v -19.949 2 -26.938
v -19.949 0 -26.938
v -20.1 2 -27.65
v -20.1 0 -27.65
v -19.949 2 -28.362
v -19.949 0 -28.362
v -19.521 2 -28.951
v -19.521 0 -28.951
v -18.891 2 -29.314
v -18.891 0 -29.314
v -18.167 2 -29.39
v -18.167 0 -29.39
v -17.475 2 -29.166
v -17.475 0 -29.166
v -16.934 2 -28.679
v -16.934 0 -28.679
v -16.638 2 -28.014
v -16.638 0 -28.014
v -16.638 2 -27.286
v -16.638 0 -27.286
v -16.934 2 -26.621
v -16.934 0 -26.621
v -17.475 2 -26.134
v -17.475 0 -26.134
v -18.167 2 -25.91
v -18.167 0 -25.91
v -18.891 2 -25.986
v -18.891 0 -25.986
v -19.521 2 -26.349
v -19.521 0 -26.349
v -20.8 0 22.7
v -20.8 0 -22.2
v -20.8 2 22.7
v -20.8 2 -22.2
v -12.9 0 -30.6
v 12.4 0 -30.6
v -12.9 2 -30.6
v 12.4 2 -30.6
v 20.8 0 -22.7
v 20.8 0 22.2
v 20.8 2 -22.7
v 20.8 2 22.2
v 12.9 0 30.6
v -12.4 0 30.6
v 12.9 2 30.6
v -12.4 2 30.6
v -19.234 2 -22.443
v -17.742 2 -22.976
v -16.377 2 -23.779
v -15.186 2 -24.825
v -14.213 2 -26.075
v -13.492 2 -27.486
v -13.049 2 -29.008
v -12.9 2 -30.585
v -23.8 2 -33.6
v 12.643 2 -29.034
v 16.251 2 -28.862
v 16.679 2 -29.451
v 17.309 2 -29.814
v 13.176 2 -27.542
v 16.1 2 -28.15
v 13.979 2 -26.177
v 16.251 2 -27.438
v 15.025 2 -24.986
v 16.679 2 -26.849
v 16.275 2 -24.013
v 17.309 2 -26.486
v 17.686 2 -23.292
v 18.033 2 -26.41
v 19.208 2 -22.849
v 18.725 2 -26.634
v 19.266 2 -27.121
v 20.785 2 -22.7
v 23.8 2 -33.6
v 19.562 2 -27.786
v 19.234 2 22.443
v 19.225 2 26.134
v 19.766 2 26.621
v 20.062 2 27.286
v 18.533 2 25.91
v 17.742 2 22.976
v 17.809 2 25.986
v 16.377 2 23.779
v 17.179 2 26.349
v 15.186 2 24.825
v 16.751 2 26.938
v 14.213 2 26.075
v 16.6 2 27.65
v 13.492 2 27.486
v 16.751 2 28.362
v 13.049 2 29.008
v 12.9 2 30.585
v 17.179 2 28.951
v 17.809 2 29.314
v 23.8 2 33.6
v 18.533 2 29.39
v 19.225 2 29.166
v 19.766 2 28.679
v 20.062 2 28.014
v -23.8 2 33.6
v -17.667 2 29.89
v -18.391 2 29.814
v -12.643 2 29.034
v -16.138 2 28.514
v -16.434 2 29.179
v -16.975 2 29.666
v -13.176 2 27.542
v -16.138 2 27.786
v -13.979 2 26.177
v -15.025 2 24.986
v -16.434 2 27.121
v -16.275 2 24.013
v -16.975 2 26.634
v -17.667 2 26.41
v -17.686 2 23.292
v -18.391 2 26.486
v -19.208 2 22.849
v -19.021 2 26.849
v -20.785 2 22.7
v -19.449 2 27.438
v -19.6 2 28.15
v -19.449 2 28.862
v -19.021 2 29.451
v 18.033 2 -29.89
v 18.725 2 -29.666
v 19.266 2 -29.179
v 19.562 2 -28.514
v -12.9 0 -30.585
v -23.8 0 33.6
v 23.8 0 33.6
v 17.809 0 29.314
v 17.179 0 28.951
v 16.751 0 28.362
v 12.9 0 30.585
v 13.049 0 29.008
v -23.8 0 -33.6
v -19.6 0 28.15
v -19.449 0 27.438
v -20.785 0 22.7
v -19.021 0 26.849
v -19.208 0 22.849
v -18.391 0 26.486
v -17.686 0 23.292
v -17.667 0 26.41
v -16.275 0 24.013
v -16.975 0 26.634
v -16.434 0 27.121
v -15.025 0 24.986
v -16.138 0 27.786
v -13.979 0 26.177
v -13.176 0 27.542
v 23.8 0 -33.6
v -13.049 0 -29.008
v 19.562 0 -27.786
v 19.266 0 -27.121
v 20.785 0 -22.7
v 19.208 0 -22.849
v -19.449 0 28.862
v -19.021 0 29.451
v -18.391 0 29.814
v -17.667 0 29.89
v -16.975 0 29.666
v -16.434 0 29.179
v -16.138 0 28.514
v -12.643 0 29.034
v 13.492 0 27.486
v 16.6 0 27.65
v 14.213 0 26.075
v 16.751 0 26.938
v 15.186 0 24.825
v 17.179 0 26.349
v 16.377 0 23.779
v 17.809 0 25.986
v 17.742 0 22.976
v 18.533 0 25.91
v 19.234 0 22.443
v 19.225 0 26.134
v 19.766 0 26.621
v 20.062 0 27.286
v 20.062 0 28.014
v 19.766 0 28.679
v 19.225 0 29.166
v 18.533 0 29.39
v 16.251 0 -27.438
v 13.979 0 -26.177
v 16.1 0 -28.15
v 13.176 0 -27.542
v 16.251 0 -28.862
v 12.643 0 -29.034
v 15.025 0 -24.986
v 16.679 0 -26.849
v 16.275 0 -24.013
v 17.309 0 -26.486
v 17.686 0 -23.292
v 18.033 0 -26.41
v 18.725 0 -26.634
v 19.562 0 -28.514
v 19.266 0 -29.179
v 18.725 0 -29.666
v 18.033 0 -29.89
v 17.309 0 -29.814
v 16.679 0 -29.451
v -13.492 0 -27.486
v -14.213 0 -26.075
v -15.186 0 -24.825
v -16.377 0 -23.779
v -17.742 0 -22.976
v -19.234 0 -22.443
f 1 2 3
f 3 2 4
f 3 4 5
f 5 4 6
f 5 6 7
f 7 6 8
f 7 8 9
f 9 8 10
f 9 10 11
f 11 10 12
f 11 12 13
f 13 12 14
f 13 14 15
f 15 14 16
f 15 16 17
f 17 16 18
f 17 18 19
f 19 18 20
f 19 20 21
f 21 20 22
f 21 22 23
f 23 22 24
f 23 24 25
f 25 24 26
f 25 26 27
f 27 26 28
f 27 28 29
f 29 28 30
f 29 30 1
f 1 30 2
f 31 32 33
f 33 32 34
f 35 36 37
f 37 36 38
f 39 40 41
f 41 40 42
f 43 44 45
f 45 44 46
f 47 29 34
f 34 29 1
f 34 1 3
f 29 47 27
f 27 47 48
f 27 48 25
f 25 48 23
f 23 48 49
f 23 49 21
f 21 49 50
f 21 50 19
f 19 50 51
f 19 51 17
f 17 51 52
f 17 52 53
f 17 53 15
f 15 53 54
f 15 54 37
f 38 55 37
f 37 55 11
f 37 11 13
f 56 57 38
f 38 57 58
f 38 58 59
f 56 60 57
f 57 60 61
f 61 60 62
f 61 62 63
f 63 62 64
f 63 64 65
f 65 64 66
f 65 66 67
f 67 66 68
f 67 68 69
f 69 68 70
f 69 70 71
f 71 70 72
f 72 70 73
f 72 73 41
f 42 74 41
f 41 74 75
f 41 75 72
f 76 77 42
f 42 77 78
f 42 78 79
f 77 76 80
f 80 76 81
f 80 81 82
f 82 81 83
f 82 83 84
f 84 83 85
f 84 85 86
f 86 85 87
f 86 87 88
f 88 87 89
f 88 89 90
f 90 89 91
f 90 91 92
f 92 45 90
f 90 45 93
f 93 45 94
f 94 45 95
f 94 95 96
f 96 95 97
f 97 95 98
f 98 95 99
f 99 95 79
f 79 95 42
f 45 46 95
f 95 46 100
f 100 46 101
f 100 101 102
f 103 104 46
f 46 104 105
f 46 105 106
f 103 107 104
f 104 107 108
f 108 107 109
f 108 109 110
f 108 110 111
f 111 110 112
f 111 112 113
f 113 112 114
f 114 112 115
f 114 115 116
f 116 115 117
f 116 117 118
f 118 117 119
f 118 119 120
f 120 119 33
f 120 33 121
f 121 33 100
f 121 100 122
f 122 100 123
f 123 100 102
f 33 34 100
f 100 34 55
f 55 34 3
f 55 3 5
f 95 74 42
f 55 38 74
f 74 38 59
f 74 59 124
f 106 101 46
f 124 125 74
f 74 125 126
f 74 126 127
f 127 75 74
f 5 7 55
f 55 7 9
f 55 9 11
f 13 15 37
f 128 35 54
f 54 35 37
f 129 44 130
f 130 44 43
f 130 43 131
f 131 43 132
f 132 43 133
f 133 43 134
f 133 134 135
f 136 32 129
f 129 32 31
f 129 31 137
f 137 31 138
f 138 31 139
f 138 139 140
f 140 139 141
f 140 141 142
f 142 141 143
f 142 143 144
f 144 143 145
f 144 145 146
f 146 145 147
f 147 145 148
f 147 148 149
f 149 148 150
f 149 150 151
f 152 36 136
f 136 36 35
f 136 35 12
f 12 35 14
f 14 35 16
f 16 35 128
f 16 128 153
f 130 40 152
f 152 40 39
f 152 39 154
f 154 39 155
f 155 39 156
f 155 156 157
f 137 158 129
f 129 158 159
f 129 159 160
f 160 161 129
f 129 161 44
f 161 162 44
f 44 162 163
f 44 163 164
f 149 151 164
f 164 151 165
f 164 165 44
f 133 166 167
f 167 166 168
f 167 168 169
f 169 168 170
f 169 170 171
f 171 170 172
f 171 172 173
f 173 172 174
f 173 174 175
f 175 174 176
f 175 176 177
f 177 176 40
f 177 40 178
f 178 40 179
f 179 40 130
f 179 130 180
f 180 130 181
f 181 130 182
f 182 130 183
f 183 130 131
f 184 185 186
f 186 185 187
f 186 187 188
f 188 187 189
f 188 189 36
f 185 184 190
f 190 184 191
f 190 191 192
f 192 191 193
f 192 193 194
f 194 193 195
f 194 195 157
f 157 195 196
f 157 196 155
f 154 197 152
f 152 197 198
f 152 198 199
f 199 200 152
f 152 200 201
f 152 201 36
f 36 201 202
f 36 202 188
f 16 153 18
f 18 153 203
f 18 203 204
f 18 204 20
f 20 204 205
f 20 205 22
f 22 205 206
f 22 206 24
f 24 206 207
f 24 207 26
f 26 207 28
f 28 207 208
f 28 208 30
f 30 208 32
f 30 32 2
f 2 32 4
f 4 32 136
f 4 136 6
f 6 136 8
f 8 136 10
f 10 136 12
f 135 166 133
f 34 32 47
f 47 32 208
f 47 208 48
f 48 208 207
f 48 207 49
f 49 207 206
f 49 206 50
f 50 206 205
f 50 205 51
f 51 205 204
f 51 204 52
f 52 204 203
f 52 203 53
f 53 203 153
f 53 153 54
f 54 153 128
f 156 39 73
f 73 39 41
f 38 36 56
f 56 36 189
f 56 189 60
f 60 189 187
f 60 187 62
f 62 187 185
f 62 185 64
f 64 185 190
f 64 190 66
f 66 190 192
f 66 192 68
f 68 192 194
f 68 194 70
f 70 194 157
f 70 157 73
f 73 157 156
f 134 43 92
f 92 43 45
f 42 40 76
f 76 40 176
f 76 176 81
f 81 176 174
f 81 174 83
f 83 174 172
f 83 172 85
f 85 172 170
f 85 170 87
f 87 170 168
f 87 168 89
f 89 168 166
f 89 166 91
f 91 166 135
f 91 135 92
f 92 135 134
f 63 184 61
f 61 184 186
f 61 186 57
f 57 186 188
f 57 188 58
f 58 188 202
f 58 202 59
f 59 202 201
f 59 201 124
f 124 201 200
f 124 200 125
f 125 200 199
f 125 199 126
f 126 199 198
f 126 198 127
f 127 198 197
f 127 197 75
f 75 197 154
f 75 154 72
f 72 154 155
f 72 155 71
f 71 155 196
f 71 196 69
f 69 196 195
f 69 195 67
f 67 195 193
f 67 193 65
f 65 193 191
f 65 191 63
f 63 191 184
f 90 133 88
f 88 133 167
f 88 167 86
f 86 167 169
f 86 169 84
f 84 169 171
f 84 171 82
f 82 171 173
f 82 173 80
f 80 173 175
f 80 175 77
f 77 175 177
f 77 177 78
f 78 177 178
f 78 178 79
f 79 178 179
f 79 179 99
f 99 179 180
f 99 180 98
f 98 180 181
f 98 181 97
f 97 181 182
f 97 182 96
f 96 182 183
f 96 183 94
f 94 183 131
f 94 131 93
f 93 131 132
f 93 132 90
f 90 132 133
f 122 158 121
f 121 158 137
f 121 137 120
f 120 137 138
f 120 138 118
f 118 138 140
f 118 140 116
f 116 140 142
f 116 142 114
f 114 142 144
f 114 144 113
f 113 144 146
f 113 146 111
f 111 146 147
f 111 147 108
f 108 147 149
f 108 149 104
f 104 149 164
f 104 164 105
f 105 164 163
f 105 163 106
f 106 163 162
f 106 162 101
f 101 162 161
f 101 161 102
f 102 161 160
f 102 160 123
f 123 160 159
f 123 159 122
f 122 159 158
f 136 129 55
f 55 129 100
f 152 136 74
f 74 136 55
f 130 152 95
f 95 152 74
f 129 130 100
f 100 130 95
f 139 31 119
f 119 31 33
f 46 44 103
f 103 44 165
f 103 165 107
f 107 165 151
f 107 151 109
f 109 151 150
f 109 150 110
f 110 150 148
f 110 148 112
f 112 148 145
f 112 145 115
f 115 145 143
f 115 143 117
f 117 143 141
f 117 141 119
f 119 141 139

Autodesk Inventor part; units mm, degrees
ref_plane "YZ Plane" through (0, 0, 0) normal (1, 0, 0) x (0, 1, 0)
ref_plane "XZ Plane" through (0, 0, 0) normal (0, 1, 0) x (-1, 0, 0)
ref_plane "XY Plane" through (0, 0, 0) normal (0, 0, 1) x (1, 0, 0)
sketch "Boceto1" plane through (0, 0, 0) normal (0, 1, 0) x (-1, 0, 0)
  line L0 (-23.8, -33.6) -> (23.8, -33.6)
  line L1 (23.8, -33.6) -> (23.8, 33.6)
  line L2 (23.8, 33.6) -> (-23.8, 33.6)
  line L3 (-23.8, 33.6) -> (-23.8, -33.6)
  line L4 (-12.4, -30.6) -> (12.9, -30.6)
  line L5 (12.4, 30.6) -> (-12.9, 30.6)
  line L6 (-23.8, 33.6) -> (-23.8, 29.4)
  circle A0 centre (-18.35, 27.65) radius 1.75
  line L7 (-16.6, 29.4) -> (-20.1, 25.9) construction
  line L8 (-20.1, 29.4) -> (-16.6, 25.9) construction
  line L9 (-12.9, 22.2) -> (-20.8, 22.2)
  line L10 (-23.8, 22.2) -> (-23.8, 33.1)
  line L11 (-12.9, 30.6) -> (-12.9, 22.2)
  line L12 (0, 33.6) -> (0, -33.6)
  line L13 (-23.8, 0) -> (23.8, 0)
  circle A1 centre (-17.85, -28.15) radius 1.75
  line L14 (-19.6, -26.4) -> (-16.1, -29.9) construction
  line L15 (-19.6, -29.9) -> (-16.1, -26.4) construction
  line L16 (-12.4, -22.7) -> (-12.4, -30.6)
  line L17 (-20.8, -22.7) -> (-12.4, -22.7)
  circle A2 centre (18.35, -27.65) radius 1.75
  line L18 (16.6, -29.4) -> (20.1, -25.9) construction
  line L19 (12.9, -22.2) -> (20.8, -22.2)
  line L20 (12.9, -30.6) -> (12.9, -22.2)
  circle A3 centre (17.85, 28.15) radius 1.75
  line L21 (19.6, 26.4) -> (16.1, 29.9) construction
  line L22 (19.6, 29.9) -> (16.1, 26.4) construction
  line L23 (12.4, 22.7) -> (12.4, 30.6)
  line L24 (20.8, 22.7) -> (12.4, 22.7)
  line L25 (20.8, -22.2) -> (20.8, 22.7)
  line L26 (-20.8, 22.2) -> (-20.8, -22.7)
  point P0 (0, 0)
  dimension "d0" = 47.6
  dimension "d1" = 67.2
  dimension "d3" = 4.2
  dimension "d5" = 3.5
  dimension "d9" = 3.5
  dimension "d11" = 3.5
extrude "Extrusión1" add sketch "Boceto1" along normal blind 2 contours L3 L13 L26 L17 L16 L4 L12 L0 | L12 L4 L20 L19 L25 L13 L1 L0 | L3 L2 L12 L5 L11 L9 L26 L13 | L13 L25 L24 L23 L5 L12 L2 L1
fillet "Empalme1" radius 8.4 4 edges at (-12.4, 1, 22.7) (12.9, 1, 22.2) (12.4, 1, -22.7) (-12.9, 1, -22.2)
